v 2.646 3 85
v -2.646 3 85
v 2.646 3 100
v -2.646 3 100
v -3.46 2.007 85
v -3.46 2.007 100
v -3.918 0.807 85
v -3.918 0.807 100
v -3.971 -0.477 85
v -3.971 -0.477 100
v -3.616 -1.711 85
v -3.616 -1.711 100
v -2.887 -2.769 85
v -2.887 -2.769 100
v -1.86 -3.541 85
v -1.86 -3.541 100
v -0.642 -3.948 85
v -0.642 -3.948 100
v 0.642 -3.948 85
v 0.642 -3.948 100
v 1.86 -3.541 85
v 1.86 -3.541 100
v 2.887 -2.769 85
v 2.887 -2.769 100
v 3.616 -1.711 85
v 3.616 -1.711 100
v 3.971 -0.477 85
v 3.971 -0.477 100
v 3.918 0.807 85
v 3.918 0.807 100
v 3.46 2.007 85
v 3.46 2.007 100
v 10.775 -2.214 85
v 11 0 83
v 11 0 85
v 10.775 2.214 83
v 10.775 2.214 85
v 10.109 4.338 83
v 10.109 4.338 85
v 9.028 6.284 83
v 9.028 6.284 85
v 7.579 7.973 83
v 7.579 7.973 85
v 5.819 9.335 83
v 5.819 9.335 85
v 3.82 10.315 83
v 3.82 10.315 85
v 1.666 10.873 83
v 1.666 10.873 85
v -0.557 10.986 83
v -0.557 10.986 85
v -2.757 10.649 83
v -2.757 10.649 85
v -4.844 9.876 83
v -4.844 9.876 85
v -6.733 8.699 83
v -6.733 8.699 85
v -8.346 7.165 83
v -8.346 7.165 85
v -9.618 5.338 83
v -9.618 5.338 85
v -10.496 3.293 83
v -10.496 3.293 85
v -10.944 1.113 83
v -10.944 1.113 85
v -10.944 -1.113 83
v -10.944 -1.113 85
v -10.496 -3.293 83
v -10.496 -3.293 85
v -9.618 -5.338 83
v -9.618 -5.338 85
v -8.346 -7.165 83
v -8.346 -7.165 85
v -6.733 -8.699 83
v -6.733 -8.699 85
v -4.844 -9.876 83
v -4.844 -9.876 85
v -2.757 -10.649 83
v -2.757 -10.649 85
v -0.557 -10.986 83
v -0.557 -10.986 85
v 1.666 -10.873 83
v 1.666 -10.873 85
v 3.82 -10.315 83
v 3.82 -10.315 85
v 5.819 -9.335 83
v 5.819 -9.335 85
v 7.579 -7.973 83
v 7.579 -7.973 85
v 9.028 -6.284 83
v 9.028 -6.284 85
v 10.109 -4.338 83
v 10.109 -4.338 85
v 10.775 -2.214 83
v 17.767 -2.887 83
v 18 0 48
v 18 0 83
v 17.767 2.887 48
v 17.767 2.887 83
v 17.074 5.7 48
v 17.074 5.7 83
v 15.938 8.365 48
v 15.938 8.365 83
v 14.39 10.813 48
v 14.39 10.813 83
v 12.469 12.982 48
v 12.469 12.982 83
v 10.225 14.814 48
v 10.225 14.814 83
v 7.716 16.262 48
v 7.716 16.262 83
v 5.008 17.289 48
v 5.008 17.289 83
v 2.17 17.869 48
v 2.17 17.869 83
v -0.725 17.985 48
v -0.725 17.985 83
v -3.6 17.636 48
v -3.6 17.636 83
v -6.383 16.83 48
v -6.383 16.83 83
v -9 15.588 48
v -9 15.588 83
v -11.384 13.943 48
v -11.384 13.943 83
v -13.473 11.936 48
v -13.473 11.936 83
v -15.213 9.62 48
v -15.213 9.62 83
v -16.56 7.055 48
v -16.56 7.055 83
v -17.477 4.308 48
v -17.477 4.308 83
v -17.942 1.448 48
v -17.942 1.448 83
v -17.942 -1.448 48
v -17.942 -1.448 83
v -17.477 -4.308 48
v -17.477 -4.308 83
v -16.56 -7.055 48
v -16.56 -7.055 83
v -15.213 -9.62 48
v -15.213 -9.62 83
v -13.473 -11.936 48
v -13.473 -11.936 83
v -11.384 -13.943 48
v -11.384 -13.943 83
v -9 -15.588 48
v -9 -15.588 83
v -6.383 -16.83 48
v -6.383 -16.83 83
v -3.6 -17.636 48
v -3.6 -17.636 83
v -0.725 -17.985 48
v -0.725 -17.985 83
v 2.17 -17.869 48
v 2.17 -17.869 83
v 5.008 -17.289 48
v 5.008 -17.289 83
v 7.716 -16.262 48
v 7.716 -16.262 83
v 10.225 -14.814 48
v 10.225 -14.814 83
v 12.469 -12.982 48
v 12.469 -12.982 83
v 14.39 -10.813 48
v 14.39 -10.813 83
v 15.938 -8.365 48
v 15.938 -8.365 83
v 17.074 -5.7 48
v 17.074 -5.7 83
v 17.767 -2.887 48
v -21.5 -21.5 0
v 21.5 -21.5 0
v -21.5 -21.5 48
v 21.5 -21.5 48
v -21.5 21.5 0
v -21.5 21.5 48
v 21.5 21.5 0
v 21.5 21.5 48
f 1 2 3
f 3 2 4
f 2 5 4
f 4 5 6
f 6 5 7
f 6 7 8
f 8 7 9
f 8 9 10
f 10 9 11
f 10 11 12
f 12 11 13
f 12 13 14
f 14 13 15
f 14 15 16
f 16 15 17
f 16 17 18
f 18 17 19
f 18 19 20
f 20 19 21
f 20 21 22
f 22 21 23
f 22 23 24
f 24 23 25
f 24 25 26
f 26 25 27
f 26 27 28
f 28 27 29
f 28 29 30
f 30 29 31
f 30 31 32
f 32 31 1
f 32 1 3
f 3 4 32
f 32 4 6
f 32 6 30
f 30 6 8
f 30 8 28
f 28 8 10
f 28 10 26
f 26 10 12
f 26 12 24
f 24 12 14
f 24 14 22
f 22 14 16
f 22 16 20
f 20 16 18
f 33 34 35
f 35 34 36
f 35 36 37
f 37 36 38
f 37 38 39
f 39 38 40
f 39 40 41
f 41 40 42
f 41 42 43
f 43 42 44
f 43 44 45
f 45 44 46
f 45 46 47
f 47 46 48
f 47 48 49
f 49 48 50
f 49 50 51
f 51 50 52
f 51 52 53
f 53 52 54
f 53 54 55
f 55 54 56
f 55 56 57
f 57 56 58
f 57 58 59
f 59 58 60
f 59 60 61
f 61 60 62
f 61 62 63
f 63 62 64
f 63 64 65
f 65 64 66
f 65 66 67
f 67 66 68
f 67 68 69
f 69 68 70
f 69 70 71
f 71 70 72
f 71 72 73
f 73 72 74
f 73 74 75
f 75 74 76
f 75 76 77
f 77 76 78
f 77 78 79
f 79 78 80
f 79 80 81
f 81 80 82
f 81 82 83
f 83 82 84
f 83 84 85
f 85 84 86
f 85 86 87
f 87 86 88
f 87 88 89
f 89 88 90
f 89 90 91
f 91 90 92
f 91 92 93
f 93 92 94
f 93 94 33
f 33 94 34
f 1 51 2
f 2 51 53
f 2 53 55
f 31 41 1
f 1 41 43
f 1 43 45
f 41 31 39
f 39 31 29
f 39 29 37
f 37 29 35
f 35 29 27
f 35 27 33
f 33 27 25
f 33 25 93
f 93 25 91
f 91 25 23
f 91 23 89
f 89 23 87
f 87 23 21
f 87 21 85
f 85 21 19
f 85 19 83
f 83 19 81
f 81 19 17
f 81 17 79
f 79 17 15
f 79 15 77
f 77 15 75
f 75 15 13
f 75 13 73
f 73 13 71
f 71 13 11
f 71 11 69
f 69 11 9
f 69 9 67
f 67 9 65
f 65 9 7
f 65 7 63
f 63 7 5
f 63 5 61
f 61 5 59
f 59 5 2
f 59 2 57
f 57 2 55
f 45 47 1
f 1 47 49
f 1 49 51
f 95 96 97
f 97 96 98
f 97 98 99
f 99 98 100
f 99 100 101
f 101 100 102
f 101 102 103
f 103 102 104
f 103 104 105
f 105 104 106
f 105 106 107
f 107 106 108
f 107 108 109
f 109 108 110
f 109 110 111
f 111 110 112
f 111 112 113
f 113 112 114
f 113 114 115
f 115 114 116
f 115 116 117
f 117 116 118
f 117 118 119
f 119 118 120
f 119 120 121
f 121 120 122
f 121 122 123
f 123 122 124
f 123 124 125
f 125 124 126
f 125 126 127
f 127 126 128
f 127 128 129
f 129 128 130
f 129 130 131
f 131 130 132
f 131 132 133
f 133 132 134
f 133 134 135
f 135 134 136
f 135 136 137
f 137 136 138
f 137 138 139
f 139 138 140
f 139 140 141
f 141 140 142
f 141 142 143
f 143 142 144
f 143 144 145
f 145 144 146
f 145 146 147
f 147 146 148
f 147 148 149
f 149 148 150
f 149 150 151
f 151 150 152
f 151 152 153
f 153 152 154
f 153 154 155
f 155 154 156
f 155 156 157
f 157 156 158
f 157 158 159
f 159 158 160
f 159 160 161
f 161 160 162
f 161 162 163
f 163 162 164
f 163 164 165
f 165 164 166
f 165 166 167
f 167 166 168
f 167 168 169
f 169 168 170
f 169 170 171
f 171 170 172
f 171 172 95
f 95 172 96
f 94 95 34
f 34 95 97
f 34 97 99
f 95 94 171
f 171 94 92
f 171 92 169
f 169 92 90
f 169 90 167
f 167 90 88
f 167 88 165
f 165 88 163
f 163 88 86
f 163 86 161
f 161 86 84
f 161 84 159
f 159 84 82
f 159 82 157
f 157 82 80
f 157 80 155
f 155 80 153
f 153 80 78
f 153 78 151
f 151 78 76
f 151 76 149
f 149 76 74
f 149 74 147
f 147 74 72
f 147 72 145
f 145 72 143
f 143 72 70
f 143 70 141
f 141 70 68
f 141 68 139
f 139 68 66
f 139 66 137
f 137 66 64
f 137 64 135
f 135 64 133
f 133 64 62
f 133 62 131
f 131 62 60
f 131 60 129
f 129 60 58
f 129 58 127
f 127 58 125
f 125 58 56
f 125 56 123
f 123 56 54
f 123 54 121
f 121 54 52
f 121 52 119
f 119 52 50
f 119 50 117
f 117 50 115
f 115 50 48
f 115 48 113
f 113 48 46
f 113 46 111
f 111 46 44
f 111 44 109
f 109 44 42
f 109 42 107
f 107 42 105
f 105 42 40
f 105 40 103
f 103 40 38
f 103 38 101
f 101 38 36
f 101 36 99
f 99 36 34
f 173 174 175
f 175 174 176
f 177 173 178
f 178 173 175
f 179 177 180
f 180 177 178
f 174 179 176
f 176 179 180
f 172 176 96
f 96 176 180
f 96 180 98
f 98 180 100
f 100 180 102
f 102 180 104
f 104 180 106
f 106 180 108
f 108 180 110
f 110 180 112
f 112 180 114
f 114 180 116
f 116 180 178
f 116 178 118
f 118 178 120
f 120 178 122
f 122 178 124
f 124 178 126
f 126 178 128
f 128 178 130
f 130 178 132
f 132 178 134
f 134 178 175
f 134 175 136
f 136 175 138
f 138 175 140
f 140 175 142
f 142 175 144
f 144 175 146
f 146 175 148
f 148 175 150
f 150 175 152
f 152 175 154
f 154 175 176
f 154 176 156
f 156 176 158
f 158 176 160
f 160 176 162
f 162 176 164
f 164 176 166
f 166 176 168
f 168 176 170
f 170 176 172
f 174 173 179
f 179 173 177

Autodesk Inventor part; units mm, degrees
ref_plane "YZ Plane" through (0, 0, 0) normal (1, 0, 0) x (0, 1, 0)
ref_plane "XZ Plane" through (0, 0, 0) normal (0, 1, 0) x (-1, 0, 0)
ref_plane "XY Plane" through (0, 0, 0) normal (0, 0, 1) x (1, 0, 0)
sketch "Sketch1" plane through (0, 0, 0) normal (0, 0, 1) x (1, 0, 0)
  line L0 (-21.5, 21.5) -> (21.5, 21.5)
  line L1 (21.5, 21.5) -> (21.5, -21.5)
  line L2 (21.5, -21.5) -> (-21.5, -21.5)
  line L3 (-21.5, -21.5) -> (-21.5, 21.5)
  point P0 (0, 0)
  dimension "d0" = 43
  dimension "d1" = 43
  dimension "d2" = 21.5
  dimension "d3" = 21.5
extrude "Extrusion1" add sketch "Sketch1" along normal blind 48
sketch "Sketch2" plane through (0, 0, 48) normal (0, 0, 1) x (1, 0, 0)
  circle A0 centre (0, 0) radius 18
  dimension "d6" = 36
extrude "Extrusion2" add sketch "Sketch2" along normal blind 35
sketch "Sketch4" plane through (0, 0, 83) normal (0, 0, 1) x (1, 0, 0)
  circle A0 centre (0, 0) radius 11
  dimension "d9" = 22
extrude "Extrusion3" add sketch "Sketch4" along normal blind 2
sketch "Sketch5" plane through (0, 0, 85) normal (0, 0, 1) x (1, 0, 0)
  circle A0 centre (0, 0) radius 4
  line L0 (0, -4) -> (0, 3) construction
  line L1 (0, 3) -> (-2.6458, 3)
  line L2 (0, 3) -> (2.6458, 3)
  dimension "d12" = 8
  dimension "d13" = 7
extrude "Extrusion4" add sketch "Sketch5" along normal blind 15 contours A0 L1 L2 picked at (-0.1322, -1.6427)
properties part number "Stepper" material "Stainless Steel"
